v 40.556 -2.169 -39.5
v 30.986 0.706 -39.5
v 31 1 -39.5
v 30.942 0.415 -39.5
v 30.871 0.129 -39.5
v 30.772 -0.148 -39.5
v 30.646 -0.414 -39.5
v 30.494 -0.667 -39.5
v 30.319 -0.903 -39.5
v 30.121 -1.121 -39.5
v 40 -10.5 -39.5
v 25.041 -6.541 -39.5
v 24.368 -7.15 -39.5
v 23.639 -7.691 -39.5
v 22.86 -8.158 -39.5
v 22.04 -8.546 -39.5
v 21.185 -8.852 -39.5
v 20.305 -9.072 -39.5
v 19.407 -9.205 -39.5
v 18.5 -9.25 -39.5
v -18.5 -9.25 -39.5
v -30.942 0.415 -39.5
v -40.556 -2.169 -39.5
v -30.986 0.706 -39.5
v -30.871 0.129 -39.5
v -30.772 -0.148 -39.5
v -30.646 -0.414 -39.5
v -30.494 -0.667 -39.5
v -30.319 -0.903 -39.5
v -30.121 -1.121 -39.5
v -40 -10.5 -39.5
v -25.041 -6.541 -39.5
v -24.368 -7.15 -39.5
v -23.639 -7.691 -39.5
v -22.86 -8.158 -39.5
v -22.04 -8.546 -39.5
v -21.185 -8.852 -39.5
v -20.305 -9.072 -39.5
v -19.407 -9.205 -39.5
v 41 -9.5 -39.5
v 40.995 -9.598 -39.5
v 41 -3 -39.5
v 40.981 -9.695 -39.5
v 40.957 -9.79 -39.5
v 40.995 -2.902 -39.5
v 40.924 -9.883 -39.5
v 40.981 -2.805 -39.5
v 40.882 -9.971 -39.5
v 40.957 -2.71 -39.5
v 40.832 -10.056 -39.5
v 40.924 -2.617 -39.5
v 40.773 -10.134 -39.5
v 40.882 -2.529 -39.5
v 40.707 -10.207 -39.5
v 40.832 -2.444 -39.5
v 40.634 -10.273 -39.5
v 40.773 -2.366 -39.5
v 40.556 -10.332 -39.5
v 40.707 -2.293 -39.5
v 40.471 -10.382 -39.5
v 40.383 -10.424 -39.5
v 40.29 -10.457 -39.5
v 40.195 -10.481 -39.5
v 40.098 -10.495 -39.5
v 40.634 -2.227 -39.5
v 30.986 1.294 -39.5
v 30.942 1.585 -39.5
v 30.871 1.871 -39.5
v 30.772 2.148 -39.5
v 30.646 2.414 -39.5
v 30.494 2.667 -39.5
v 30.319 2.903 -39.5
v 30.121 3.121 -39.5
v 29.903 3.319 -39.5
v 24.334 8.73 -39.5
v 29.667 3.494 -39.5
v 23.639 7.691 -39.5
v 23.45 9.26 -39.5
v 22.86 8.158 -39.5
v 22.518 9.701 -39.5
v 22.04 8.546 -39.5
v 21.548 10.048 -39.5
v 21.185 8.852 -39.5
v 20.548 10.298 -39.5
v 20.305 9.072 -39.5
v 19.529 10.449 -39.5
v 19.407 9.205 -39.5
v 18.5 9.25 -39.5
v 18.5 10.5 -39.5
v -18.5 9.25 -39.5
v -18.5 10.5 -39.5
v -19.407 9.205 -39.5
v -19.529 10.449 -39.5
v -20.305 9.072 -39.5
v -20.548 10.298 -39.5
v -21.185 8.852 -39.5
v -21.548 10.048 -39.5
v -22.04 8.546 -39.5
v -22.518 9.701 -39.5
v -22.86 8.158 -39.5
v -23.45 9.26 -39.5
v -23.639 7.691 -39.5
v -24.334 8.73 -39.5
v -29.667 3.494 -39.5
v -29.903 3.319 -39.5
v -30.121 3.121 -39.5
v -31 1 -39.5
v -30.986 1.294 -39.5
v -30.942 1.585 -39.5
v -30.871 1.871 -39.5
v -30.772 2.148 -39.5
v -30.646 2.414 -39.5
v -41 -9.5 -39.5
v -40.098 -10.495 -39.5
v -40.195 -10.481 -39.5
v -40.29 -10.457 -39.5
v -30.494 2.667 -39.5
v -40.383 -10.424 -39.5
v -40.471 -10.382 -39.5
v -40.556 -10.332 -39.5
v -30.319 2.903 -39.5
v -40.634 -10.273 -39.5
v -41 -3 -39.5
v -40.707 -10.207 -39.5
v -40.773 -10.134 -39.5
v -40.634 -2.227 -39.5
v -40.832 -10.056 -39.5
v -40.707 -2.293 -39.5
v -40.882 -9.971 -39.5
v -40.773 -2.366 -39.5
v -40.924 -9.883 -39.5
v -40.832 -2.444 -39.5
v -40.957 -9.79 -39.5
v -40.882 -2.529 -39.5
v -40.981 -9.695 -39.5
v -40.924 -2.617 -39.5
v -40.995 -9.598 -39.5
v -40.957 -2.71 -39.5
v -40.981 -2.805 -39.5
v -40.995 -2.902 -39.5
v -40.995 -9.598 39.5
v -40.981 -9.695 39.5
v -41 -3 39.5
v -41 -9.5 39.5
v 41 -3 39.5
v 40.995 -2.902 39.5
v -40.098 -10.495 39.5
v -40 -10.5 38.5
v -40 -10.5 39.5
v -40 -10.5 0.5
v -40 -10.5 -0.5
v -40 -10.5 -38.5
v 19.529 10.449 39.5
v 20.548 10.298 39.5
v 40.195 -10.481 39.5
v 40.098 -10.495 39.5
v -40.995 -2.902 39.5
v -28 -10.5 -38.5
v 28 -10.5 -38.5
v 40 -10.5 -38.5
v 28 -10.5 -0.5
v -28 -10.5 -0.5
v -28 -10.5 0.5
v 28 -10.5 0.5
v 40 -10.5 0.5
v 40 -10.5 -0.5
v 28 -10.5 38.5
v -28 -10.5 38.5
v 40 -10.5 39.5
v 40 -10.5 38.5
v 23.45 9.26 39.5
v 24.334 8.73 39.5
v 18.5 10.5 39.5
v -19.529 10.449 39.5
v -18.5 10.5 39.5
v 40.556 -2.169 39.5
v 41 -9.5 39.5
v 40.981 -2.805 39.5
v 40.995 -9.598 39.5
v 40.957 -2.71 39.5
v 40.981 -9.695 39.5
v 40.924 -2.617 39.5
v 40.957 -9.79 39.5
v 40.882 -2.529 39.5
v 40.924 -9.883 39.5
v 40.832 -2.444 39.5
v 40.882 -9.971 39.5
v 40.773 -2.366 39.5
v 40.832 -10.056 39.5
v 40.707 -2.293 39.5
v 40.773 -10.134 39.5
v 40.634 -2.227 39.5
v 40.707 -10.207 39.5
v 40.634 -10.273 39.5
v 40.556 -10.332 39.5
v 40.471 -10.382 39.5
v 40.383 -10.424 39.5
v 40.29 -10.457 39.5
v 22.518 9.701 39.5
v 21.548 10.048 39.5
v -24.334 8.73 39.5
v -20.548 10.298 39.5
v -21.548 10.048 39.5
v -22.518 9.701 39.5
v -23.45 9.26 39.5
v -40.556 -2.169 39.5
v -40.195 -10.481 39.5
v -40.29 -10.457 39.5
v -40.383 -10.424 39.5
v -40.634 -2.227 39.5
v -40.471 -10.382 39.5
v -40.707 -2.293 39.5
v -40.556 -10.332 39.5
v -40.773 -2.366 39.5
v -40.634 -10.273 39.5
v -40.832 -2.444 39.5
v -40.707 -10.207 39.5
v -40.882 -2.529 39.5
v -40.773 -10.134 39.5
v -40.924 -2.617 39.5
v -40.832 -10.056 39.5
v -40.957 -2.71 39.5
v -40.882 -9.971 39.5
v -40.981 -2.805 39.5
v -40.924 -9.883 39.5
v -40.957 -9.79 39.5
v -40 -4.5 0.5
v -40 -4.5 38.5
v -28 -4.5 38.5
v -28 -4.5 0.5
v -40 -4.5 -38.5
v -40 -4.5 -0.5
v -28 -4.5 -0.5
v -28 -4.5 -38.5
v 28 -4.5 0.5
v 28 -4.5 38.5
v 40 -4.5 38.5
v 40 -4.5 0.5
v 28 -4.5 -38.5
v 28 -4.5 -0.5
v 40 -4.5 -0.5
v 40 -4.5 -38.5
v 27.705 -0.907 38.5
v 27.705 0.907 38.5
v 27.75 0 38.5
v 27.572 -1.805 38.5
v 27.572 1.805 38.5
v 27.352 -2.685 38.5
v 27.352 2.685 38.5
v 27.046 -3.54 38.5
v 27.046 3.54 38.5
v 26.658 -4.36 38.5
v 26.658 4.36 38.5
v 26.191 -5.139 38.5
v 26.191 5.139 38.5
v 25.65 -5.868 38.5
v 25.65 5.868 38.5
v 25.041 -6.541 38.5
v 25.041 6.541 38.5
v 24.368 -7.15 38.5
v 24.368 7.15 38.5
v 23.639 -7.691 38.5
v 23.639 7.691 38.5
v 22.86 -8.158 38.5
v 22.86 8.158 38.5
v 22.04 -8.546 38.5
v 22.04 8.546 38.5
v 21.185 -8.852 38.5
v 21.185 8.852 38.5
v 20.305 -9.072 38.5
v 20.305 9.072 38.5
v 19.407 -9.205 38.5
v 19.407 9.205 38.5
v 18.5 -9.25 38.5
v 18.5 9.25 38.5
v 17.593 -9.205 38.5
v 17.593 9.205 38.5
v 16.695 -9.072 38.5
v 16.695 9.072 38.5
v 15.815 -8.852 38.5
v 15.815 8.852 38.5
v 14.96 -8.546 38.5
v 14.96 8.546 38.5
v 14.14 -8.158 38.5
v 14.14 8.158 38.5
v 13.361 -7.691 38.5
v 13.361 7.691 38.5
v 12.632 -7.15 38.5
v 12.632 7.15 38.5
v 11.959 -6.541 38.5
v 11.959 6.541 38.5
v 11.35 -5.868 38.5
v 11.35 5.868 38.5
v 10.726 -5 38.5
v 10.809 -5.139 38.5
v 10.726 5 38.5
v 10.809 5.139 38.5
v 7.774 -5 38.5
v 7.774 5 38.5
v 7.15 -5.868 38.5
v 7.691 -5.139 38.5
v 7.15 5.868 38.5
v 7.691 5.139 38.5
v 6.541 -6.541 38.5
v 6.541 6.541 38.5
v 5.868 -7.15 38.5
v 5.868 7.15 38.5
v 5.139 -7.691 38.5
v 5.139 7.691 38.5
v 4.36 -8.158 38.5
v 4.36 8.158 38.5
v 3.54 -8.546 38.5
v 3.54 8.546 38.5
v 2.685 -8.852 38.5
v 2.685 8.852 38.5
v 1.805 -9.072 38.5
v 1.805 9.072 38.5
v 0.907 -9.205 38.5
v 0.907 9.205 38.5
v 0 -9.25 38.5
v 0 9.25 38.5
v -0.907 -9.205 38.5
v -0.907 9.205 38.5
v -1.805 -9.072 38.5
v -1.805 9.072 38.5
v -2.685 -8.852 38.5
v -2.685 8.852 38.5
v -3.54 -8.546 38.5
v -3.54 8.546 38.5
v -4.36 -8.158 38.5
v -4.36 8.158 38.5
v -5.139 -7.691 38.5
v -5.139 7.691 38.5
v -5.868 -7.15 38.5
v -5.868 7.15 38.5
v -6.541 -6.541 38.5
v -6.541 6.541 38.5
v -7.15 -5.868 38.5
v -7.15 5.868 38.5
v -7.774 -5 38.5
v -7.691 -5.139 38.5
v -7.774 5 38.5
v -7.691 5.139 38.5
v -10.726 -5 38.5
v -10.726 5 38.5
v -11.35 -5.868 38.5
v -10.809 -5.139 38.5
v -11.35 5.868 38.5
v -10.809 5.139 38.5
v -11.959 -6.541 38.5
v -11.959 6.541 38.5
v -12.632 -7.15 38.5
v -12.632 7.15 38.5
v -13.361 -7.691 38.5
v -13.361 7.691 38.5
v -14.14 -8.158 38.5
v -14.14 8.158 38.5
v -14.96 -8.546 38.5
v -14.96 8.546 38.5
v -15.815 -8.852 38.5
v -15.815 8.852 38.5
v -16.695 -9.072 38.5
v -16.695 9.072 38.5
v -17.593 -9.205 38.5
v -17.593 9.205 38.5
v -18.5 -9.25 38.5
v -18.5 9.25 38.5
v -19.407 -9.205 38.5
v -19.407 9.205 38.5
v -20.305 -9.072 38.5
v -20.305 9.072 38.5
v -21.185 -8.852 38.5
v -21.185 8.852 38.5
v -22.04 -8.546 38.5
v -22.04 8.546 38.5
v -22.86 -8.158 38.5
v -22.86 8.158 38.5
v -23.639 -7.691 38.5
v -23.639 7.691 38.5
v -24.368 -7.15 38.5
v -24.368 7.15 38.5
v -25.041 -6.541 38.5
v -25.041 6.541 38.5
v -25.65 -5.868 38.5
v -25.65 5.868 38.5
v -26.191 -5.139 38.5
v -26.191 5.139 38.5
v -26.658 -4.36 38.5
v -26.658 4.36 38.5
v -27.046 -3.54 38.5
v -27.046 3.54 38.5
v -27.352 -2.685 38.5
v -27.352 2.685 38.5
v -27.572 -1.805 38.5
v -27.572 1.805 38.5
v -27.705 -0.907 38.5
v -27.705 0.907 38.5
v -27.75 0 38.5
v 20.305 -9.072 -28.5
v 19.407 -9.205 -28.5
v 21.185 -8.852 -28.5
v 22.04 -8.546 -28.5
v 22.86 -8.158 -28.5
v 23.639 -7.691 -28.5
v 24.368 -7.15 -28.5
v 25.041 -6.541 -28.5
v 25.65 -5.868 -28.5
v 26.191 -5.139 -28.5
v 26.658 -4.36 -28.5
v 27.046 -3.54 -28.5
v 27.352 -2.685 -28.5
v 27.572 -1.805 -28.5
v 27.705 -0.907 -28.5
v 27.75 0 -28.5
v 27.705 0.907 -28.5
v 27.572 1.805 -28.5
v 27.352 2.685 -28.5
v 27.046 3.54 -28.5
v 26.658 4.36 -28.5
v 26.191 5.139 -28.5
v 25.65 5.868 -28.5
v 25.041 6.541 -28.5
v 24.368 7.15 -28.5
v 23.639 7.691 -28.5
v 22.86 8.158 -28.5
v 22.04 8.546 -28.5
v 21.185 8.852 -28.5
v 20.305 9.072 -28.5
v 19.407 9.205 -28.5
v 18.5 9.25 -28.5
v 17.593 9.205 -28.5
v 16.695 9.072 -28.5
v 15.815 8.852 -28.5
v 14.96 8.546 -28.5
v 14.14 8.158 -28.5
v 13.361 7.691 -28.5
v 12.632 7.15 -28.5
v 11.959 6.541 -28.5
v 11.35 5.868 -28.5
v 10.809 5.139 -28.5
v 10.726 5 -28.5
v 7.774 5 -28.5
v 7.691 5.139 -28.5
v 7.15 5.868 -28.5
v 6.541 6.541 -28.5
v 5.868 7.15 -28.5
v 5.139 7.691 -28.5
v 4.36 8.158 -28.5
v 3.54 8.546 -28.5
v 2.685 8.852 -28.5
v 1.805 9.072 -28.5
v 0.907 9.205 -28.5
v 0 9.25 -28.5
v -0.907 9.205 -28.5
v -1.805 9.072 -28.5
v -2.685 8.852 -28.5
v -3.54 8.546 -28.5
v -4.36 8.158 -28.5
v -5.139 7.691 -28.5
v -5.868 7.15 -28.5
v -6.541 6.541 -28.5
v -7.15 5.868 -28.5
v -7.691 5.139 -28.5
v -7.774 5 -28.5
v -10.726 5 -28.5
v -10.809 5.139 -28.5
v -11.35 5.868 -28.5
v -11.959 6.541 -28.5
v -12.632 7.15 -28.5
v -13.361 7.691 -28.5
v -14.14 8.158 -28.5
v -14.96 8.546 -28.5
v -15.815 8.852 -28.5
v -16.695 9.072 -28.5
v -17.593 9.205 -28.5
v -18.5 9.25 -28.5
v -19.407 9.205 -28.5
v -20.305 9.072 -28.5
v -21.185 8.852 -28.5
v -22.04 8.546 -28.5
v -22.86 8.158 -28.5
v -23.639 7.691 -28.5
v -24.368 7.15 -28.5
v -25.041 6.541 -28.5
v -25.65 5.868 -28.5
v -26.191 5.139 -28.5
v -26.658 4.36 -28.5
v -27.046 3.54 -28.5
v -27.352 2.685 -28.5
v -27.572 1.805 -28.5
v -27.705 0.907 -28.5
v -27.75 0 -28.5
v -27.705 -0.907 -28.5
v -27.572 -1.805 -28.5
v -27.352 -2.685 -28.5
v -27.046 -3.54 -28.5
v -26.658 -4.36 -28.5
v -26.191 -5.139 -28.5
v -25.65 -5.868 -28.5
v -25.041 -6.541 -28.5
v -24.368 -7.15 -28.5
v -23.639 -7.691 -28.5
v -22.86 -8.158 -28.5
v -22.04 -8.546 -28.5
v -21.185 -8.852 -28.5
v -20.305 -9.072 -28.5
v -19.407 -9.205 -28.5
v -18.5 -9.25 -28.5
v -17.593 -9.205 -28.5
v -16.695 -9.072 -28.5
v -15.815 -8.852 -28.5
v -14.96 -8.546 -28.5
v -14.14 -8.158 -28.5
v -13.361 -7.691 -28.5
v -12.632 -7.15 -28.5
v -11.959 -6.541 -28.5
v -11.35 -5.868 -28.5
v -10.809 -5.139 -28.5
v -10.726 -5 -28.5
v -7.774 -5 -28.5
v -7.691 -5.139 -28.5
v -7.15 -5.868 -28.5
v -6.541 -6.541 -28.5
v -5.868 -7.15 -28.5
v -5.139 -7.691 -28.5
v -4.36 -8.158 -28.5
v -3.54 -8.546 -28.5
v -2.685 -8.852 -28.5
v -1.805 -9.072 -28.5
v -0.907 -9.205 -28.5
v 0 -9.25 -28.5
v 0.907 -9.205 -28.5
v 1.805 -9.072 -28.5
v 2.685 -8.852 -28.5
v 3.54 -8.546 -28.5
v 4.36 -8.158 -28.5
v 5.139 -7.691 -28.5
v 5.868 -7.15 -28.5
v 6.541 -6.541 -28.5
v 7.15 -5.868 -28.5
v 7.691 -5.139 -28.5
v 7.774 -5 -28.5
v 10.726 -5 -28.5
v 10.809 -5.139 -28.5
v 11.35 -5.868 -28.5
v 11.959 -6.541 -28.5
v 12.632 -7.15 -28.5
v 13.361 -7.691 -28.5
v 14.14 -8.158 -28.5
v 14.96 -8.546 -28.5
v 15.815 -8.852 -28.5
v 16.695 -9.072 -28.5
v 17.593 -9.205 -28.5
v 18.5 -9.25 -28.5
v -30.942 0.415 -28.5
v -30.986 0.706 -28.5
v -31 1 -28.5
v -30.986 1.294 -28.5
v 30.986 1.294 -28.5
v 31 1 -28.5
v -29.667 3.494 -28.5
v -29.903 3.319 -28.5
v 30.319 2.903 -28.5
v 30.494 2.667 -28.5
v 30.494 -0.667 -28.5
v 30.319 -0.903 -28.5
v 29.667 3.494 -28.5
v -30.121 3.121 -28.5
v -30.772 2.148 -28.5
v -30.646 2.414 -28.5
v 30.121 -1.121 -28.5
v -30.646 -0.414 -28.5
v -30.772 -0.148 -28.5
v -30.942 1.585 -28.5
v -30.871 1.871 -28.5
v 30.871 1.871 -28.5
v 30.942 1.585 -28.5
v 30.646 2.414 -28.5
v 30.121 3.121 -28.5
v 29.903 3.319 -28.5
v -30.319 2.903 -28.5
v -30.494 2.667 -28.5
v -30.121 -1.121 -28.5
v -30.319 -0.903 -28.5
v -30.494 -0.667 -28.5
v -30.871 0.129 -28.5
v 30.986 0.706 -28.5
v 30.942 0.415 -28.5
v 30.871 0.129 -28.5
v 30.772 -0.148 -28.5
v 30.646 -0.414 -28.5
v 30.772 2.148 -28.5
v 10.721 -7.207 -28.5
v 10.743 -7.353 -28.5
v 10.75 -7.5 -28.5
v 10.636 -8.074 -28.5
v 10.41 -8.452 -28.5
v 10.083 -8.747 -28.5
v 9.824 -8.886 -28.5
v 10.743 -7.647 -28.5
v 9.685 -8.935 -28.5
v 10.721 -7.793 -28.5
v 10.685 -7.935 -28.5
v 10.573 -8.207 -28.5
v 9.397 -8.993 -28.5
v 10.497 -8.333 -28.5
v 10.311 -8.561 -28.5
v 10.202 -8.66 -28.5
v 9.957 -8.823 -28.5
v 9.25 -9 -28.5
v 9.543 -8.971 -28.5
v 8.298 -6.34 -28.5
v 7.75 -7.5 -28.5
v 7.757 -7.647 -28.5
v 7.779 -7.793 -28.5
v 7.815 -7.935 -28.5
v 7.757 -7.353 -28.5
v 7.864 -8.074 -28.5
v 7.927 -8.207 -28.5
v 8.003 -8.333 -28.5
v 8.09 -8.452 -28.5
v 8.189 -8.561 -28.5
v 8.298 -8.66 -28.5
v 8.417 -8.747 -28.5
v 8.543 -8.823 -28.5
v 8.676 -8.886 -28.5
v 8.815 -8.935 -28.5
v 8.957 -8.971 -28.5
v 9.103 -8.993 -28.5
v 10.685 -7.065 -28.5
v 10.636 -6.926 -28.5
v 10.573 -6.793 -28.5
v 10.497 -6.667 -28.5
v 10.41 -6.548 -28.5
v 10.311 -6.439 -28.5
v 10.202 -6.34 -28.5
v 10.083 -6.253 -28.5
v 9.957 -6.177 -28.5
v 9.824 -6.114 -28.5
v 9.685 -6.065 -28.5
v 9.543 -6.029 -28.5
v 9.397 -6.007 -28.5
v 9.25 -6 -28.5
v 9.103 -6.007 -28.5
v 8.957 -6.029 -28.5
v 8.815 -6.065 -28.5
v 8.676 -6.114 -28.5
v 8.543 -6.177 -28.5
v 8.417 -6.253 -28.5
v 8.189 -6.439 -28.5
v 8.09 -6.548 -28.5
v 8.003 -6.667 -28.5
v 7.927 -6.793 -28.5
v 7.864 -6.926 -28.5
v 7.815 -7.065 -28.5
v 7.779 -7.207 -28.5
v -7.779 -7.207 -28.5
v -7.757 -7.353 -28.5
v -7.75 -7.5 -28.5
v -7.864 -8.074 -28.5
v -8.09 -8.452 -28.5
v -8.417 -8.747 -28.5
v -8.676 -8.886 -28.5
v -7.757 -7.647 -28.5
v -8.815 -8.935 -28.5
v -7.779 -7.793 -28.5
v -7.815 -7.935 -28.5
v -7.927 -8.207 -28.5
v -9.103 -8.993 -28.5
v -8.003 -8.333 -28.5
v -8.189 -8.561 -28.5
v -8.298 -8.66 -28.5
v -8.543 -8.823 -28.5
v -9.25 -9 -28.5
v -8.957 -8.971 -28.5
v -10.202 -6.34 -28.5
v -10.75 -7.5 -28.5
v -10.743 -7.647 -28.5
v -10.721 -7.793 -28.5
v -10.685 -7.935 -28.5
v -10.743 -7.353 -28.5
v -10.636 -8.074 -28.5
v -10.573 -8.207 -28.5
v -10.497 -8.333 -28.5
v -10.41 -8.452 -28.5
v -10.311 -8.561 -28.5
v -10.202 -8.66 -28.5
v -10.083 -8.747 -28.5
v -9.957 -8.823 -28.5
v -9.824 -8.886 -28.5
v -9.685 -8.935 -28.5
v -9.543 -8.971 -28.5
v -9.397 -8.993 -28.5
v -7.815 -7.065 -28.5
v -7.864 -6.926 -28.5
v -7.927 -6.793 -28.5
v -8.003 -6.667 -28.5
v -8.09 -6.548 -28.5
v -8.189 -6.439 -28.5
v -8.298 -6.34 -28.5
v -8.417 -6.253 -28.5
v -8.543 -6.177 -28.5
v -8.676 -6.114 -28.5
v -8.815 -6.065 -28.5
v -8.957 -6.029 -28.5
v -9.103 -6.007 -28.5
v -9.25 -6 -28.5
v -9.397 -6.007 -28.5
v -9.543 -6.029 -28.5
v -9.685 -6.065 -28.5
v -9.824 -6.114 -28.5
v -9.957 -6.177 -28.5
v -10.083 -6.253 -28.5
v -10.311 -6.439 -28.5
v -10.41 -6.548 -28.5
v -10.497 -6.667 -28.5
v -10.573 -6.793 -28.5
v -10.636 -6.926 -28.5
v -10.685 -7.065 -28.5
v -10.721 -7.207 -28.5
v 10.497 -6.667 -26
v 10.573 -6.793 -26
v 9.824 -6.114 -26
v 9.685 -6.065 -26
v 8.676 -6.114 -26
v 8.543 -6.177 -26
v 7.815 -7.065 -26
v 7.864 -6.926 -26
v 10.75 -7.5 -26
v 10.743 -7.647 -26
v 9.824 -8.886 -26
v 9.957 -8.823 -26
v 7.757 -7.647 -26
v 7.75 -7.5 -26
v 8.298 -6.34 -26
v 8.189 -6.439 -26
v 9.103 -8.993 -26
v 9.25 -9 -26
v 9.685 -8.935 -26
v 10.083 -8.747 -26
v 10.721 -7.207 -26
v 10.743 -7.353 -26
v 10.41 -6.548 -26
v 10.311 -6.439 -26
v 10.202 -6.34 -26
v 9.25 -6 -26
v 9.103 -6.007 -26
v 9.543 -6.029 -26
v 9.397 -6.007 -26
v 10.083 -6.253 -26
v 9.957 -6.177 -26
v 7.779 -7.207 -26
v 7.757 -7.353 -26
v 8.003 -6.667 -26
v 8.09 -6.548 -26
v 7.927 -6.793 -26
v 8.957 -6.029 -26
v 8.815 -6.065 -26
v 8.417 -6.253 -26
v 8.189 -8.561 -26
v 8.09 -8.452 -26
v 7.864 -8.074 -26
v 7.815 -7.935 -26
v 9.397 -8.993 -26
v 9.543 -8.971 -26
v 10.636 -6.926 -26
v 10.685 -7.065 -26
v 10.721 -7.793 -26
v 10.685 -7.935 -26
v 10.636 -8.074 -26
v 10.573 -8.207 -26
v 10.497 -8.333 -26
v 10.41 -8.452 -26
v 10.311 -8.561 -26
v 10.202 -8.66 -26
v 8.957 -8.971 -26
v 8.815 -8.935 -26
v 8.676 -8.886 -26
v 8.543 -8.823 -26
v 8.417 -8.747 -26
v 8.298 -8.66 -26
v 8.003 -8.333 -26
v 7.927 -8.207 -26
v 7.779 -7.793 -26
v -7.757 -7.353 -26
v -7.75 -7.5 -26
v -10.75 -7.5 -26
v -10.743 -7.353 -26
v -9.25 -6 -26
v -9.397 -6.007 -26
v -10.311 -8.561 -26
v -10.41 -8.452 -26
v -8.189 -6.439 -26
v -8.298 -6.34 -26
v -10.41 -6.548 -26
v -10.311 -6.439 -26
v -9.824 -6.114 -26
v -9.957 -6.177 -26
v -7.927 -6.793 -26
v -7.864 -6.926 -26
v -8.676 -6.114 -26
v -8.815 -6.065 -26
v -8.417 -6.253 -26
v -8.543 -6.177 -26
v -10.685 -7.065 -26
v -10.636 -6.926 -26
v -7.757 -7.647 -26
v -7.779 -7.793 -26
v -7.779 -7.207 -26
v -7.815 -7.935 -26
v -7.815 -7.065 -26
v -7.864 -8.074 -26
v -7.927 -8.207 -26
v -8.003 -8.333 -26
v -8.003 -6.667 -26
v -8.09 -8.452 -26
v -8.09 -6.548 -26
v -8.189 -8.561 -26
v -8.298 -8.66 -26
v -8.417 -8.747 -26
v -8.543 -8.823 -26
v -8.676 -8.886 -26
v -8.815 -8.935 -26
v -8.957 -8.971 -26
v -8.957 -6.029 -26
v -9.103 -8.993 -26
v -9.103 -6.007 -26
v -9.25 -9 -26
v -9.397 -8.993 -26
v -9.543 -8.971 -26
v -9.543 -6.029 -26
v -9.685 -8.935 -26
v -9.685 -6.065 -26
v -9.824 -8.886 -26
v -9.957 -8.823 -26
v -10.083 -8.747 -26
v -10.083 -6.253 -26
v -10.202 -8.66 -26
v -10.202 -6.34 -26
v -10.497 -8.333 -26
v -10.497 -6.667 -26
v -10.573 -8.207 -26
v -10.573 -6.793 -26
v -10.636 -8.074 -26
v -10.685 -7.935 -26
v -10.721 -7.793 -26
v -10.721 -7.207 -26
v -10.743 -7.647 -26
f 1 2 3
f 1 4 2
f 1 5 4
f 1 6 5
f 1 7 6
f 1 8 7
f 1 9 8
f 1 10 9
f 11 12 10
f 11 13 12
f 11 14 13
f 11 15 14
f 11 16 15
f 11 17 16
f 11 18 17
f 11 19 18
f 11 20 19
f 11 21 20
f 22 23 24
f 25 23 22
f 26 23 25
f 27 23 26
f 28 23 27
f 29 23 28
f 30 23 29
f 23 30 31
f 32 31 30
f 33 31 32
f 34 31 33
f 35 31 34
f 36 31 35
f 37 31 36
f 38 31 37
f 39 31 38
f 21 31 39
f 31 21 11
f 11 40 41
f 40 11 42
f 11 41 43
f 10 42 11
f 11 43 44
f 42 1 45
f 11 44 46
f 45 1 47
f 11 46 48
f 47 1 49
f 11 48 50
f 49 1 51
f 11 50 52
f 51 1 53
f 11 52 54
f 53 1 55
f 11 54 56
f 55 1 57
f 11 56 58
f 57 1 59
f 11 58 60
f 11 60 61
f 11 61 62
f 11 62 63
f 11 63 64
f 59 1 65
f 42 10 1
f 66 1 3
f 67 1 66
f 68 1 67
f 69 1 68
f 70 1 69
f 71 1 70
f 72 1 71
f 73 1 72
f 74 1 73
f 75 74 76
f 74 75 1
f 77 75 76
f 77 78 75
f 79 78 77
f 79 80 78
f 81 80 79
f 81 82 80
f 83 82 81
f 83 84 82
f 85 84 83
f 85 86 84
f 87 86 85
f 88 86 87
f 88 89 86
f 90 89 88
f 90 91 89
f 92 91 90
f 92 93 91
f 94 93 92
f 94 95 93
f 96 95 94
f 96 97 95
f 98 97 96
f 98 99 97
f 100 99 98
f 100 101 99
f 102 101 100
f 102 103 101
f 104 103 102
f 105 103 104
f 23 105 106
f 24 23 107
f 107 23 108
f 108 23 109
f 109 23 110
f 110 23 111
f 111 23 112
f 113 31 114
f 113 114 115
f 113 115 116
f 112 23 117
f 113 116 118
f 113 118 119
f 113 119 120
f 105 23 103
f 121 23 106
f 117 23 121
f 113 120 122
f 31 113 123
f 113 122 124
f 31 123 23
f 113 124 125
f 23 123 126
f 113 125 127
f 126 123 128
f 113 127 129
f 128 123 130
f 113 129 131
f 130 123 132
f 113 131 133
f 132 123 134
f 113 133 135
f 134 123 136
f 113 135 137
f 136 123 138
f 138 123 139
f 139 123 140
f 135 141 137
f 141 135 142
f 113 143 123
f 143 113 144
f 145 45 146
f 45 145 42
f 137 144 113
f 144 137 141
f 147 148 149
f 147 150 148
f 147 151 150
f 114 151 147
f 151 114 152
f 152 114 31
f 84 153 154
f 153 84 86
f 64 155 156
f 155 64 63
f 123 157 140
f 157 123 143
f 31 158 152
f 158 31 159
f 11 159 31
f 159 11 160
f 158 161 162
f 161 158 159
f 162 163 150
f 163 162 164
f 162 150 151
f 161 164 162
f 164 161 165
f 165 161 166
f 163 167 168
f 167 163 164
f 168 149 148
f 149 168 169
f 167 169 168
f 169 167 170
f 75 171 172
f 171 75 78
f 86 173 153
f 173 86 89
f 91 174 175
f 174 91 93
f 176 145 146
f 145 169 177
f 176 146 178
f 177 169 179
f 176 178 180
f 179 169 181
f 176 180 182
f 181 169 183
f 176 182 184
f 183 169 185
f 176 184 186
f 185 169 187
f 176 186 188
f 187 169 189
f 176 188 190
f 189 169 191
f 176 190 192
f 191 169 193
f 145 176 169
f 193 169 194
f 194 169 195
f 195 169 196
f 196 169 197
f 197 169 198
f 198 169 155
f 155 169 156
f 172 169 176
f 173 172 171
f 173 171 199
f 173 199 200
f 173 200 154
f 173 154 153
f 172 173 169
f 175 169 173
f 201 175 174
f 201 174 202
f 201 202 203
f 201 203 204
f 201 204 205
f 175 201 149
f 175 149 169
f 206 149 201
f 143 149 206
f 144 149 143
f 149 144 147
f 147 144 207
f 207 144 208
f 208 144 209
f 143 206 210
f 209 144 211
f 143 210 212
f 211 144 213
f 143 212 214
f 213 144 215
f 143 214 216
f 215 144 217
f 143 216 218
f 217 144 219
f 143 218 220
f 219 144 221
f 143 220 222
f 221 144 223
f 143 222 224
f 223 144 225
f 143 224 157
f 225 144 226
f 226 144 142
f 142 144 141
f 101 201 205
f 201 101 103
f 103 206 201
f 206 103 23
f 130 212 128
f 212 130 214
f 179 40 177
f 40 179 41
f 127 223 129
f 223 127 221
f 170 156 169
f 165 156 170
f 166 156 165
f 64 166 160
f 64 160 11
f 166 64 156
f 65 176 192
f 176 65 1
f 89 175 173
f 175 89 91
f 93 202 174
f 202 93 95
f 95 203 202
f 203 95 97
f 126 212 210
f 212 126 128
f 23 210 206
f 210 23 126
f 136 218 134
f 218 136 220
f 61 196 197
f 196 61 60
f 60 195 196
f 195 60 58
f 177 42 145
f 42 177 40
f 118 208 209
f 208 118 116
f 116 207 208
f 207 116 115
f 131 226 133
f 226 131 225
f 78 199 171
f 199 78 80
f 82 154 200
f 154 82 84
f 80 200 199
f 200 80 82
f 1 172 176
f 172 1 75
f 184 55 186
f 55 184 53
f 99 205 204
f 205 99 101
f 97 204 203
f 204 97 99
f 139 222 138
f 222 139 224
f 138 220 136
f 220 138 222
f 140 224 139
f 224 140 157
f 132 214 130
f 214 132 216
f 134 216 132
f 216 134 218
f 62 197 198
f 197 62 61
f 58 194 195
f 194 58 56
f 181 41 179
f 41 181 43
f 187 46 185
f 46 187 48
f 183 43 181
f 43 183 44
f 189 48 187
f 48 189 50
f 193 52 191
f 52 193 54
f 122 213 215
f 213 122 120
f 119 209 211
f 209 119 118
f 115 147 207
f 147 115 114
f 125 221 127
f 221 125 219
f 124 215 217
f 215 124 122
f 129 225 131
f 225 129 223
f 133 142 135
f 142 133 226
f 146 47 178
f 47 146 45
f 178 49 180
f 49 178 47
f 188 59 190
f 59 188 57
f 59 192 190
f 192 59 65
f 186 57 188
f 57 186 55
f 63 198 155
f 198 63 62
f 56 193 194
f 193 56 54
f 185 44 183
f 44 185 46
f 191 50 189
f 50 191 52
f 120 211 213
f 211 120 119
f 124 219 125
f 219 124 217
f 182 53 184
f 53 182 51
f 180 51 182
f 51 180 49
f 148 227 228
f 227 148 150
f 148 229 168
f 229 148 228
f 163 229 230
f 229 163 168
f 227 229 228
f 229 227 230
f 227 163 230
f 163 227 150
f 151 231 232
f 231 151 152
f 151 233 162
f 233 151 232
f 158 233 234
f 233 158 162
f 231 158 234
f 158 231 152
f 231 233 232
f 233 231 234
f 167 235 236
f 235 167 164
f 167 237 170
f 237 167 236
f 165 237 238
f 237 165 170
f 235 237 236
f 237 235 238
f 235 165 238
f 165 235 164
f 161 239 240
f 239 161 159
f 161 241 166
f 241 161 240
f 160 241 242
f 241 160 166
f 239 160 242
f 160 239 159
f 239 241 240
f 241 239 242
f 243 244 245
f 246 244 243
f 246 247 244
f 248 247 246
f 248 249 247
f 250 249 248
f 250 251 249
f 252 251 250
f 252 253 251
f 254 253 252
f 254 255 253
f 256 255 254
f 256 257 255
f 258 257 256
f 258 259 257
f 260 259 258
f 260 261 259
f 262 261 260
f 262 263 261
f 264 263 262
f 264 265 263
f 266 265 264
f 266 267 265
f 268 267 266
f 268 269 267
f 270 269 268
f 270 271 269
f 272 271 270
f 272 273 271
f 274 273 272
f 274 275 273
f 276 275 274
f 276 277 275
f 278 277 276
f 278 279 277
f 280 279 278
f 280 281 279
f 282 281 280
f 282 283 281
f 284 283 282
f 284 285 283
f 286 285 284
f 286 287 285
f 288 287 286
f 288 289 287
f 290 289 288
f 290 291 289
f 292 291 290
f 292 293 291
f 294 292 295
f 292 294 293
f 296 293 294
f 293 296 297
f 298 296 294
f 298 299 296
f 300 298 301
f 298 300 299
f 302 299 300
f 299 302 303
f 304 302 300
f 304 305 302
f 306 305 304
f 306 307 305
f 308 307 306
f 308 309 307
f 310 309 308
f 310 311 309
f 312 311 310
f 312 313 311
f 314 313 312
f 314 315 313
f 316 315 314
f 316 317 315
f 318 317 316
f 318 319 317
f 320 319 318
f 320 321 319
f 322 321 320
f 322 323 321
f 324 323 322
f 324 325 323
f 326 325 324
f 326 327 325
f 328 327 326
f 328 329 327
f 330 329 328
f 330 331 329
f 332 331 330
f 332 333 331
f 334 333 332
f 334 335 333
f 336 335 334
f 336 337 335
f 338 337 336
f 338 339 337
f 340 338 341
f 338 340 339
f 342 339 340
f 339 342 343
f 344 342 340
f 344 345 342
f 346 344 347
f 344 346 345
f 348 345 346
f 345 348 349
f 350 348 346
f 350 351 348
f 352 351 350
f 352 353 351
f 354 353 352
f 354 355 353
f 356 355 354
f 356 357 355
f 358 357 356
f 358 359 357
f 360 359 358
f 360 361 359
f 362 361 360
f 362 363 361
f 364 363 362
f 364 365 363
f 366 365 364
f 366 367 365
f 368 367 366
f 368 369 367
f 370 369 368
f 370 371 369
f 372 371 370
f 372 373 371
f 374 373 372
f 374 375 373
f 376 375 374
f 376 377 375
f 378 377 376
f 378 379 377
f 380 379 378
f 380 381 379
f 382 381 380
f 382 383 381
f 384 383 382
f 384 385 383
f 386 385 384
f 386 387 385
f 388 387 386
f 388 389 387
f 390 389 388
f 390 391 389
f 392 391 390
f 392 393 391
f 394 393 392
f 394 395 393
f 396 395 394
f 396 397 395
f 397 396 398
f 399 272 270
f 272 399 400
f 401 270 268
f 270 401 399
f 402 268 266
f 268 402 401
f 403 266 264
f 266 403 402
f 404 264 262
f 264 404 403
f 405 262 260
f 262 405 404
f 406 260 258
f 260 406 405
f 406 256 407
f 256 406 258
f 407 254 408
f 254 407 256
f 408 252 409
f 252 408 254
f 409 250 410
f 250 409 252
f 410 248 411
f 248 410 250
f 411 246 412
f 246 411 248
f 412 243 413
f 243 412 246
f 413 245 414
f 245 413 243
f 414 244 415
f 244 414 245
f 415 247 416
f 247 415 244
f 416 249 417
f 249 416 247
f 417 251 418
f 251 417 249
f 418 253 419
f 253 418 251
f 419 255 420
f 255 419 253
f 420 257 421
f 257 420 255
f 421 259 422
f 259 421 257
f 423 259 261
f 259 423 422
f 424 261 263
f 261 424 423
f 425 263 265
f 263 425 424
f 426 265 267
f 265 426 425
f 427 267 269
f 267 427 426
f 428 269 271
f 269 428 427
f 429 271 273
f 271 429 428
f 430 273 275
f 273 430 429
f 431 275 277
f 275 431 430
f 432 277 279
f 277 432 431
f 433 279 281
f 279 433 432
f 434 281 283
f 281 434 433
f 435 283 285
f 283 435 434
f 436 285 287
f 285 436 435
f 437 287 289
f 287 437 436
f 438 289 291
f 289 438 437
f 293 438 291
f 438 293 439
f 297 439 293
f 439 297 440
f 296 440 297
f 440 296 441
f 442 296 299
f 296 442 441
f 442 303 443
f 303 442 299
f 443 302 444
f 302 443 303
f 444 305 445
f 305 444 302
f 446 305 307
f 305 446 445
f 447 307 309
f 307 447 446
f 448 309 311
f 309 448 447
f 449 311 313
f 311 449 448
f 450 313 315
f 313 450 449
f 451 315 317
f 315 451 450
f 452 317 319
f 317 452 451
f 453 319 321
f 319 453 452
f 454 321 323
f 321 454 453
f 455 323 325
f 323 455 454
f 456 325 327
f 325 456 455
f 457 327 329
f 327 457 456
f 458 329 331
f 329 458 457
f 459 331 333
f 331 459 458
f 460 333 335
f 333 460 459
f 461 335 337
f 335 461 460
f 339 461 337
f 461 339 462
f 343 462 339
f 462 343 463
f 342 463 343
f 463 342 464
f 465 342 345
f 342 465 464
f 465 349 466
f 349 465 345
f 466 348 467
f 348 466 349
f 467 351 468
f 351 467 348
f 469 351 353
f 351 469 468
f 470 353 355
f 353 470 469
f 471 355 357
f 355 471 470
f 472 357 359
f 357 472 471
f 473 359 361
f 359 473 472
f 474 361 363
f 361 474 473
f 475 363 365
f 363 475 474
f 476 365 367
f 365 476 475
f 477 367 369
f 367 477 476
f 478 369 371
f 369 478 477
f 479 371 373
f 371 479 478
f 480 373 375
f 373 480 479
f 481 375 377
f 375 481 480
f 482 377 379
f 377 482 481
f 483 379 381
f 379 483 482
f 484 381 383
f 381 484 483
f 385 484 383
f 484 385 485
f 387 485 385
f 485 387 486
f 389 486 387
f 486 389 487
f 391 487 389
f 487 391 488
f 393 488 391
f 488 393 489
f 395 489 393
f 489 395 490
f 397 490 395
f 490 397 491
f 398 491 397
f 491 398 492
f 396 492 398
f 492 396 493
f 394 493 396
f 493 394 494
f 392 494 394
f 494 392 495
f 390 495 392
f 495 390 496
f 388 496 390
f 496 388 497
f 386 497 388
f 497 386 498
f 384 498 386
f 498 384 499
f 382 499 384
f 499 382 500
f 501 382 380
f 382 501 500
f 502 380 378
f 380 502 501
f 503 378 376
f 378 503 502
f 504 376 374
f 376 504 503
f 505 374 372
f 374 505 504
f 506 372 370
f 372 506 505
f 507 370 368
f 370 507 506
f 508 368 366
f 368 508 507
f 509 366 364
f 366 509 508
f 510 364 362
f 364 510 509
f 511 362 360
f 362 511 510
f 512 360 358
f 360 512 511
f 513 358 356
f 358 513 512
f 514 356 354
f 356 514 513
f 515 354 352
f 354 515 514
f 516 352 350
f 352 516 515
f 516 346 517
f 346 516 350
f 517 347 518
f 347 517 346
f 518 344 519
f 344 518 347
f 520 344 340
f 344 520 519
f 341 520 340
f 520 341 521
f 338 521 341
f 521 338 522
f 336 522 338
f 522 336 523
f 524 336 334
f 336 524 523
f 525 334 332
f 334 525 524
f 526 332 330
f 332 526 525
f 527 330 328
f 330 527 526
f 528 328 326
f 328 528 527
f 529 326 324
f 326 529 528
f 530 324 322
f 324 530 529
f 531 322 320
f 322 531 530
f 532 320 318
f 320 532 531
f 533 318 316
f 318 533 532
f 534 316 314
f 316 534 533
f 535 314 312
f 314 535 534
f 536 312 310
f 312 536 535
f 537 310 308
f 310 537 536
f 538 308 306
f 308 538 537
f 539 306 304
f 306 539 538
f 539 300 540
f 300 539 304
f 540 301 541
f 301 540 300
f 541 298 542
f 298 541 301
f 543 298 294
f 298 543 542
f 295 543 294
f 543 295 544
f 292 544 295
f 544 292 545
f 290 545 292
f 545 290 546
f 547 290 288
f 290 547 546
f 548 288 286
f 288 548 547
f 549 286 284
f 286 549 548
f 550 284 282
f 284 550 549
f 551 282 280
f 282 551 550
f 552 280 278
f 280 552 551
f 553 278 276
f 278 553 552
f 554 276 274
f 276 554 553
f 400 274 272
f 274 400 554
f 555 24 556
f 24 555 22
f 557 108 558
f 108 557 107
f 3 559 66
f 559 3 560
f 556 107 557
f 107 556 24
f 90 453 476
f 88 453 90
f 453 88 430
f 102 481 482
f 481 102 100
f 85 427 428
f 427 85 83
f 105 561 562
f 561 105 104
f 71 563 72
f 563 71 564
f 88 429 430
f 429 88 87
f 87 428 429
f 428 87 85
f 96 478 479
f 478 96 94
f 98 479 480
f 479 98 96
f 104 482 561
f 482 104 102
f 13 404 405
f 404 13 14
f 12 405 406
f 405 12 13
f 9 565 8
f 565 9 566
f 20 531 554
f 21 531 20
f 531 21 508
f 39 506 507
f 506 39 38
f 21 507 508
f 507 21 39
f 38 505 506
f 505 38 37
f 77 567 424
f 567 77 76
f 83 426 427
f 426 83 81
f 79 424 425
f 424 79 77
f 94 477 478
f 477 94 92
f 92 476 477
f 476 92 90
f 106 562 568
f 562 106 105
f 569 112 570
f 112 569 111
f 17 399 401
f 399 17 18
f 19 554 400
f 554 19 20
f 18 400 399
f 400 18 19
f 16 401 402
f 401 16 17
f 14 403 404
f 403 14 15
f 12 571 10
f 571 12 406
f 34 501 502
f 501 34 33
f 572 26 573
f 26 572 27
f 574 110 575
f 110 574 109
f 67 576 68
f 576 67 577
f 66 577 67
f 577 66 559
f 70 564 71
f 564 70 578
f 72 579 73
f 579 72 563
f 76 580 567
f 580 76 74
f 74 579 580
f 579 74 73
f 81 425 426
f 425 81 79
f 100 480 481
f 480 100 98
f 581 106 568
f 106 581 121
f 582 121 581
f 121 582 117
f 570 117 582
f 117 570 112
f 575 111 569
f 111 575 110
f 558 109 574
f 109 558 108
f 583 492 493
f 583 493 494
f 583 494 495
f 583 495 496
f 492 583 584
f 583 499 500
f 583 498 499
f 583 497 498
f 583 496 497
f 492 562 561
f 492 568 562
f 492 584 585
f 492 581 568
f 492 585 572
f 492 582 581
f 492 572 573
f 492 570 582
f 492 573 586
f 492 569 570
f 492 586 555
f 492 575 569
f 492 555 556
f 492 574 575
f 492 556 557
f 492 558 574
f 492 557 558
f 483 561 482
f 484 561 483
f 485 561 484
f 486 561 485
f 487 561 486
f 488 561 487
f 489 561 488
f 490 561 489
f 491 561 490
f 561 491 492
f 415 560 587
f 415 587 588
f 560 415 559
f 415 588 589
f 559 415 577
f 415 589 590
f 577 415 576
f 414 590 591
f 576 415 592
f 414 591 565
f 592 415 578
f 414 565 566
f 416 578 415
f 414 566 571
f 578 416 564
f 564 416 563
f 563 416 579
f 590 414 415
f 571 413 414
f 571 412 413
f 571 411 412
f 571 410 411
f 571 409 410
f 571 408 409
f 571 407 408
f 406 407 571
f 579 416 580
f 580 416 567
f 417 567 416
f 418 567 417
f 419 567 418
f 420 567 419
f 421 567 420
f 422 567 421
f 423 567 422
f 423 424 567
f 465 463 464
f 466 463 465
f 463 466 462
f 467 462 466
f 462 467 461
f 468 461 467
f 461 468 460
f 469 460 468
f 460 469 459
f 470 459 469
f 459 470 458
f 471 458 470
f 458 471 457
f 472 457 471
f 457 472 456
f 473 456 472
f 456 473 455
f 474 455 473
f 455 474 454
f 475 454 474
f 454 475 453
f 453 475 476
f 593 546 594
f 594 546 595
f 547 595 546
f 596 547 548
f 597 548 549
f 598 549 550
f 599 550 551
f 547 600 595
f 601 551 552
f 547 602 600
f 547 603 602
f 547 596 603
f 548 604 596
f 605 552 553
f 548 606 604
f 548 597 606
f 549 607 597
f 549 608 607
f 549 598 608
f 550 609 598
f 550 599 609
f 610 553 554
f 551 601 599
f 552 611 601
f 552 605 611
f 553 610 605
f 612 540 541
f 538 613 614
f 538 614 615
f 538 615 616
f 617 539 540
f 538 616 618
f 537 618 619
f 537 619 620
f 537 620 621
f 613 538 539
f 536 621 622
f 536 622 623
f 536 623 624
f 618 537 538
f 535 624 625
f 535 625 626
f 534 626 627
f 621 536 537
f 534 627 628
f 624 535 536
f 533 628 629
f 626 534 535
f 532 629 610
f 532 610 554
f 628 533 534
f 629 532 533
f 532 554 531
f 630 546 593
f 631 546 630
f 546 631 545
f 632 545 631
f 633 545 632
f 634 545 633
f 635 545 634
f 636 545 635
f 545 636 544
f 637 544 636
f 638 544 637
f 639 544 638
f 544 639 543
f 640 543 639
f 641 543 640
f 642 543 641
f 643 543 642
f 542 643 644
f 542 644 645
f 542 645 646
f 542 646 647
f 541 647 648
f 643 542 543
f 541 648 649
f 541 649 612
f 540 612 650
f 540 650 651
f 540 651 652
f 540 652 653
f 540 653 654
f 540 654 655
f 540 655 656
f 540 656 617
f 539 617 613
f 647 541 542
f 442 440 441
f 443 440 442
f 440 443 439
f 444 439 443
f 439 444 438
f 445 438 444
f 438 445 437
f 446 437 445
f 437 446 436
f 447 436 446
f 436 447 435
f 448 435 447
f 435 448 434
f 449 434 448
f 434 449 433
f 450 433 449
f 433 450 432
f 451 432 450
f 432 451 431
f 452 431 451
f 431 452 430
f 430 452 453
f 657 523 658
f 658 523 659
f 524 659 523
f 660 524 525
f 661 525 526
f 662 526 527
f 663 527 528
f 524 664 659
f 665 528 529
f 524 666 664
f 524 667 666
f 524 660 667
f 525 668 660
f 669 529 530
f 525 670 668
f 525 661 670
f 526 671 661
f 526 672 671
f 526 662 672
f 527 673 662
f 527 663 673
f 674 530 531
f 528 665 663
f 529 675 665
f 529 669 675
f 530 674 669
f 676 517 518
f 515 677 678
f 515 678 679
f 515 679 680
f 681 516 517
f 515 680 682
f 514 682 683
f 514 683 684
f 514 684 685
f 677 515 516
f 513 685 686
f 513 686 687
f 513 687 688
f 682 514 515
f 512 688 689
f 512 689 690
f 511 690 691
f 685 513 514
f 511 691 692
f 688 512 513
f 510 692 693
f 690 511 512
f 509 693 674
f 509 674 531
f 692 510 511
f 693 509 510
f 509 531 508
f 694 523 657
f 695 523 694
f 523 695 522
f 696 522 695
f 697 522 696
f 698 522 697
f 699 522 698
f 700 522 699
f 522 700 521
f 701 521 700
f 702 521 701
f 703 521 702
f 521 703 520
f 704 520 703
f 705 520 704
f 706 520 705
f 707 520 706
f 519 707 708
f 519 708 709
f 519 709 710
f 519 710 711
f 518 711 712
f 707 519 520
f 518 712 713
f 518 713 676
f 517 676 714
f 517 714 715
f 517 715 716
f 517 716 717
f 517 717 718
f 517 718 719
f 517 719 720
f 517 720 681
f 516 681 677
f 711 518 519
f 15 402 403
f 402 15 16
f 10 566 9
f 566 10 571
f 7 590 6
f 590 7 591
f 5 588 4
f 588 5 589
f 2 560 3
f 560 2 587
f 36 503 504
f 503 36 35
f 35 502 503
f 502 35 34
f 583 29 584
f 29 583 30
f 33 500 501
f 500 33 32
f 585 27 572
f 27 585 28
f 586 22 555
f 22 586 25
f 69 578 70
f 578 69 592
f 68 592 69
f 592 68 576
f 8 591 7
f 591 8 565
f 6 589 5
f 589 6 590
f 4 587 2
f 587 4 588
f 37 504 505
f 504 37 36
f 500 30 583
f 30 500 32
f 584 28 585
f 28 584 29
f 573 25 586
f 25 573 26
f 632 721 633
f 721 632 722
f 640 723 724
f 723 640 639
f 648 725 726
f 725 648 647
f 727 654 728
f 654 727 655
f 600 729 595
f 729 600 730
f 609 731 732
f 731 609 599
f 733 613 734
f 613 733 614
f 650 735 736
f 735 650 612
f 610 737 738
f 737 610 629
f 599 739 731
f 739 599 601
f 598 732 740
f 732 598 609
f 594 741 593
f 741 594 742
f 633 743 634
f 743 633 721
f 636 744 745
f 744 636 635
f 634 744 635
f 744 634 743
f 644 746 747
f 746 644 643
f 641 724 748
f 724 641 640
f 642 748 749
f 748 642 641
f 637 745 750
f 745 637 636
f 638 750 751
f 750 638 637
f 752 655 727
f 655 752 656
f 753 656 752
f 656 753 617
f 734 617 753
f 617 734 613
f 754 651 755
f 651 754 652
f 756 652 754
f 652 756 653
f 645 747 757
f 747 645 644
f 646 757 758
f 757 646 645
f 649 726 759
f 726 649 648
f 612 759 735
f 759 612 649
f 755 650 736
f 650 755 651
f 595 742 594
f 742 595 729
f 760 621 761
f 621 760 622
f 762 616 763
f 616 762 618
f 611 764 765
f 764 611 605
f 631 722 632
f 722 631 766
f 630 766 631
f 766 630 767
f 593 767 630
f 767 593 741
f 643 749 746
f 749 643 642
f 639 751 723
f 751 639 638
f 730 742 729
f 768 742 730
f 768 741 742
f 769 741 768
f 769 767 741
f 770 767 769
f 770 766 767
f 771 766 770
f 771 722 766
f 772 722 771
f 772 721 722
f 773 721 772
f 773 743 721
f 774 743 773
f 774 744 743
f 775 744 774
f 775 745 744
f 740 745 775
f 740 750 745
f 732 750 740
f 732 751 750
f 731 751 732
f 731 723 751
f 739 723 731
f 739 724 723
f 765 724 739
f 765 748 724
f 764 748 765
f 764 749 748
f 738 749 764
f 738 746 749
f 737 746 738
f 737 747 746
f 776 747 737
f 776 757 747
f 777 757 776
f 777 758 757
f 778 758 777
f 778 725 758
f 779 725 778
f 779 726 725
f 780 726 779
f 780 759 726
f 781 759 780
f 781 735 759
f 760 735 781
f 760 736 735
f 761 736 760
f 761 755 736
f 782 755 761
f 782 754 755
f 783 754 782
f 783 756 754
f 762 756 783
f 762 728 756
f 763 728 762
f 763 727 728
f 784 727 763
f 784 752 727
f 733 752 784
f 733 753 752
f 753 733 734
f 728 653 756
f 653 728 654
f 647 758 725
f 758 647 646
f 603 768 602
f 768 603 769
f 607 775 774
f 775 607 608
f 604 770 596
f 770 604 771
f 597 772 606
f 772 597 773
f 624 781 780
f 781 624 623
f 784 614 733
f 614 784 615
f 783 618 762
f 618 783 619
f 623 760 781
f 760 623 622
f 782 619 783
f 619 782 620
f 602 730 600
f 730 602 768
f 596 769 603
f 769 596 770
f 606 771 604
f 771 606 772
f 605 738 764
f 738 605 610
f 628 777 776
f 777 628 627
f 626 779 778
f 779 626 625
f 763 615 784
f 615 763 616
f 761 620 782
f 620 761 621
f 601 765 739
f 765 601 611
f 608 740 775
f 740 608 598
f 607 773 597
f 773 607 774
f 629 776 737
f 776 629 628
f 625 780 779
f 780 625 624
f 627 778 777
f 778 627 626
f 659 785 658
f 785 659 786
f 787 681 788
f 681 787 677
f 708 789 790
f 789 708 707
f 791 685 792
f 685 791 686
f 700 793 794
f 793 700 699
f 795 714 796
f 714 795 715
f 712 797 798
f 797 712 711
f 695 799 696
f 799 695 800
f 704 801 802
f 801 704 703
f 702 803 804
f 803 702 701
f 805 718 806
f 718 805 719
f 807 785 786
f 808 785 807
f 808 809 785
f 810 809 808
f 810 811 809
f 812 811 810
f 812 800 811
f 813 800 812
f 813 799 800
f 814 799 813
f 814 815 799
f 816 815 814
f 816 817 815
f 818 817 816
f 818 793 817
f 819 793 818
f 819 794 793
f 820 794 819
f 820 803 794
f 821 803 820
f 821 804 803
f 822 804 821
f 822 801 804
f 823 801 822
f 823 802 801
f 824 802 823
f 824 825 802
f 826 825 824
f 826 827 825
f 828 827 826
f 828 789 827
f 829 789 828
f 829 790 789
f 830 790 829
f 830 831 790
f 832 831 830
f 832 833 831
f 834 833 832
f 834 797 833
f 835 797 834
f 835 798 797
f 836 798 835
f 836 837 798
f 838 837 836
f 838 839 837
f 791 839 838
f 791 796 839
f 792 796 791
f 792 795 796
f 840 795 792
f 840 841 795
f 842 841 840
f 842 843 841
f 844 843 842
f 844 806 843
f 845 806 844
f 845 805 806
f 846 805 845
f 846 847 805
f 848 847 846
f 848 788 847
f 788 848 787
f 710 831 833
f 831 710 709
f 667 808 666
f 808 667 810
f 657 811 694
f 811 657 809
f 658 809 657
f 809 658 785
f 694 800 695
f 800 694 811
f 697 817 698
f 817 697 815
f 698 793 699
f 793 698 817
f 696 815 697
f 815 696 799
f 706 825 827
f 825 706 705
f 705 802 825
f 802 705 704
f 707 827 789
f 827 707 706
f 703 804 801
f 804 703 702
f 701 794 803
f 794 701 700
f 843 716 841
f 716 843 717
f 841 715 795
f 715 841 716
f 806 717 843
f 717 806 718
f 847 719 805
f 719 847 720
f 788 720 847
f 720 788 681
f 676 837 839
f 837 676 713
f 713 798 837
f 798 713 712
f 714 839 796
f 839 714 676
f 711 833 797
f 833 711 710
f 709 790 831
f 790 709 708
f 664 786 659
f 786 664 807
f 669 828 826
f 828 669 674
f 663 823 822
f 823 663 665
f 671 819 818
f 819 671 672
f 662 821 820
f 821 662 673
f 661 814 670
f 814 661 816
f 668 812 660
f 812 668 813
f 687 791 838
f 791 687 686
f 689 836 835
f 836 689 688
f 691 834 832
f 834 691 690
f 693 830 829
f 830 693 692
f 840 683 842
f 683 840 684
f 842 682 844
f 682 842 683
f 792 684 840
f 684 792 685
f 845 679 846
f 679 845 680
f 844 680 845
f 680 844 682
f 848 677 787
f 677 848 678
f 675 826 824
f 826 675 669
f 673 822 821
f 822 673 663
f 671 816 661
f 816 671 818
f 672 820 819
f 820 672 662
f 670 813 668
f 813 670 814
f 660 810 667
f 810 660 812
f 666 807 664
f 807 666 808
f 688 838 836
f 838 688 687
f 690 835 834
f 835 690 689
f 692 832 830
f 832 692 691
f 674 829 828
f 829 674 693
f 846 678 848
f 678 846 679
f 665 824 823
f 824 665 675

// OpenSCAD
// file: library.scad
// Аккумулятор 18650

module akk18650() {
  cylinder(d=18.4, h=65, center=true);
  
}
// main file
include <library.scad>

$fn = 64;

if(false) {

  translate([  0.0, 0, 5]) akk18650();
  translate([ 18.5, 0, 5]) akk18650();
  translate([-18.5, 0, 5]) akk18650();
  
  // Магниты
  /*translate([ 33, -5, 0]) cube([8,8,55], center=true);*/
  /*translate([-33, -5, 0]) cube([8,8,55], center=true);*/

  translate([-34, -7, 38/2+0.5]) cube([12,6,38], center=true);
  translate([-34, -7,-38/2-0.5]) cube([12,6,38], center=true);
  
  translate([ 34, -7, 38/2+0.5]) cube([12,6,38], center=true);
  translate([ 34, -7,-38/2-0.5]) cube([12,6,38], center=true);

  translate([-64, -7, 38/2+0.5]) cube([15,15,50], center=true);

}


// PCB

if(false) {
  translate([0,0,-65/2]) {
    color("Green") {
      linear_extrude(height=1.6, center=true) hull() {
        translate([-18.5, 0]) circle(r=9);
        translate([ 18.5, 0]) circle(r=9);  
      }
    }
    color("Black") {
      translate([0,-8,1.6/2]) cube([16,16,2.5]);
    }
    color("Gray") {
      translate([-9,-9,-1.6/2-2.5]) cube([18,18,2.5]);
    }
  }
}


// Корпус

color("red")

difference() {
  

  linear_extrude(height = 79.0, center=true) {

    hull() {

      translate([-40,-9.5]) circle(r=1);
      translate([ 40,-9.5]) circle(r=1);

      translate([-40,-3]) circle(r=1);
      translate([ 40,-3]) circle(r=1);

      translate([-18.5, 0]) circle(r=10.5);
      translate([ 18.5, 0]) circle(r=10.5);
    }
  }

  // Полости под магниты
  translate([-34, -8, 38/2+0.5]) cube([12, 7, 38], center=true);
  translate([-34, -8,-38/2-0.5]) cube([12, 7, 38], center=true);

  translate([ 34, -8, 38/2+0.5]) cube([12, 7, 38], center=true);
  translate([ 34, -8,-38/2-0.5]) cube([12, 7, 38], center=true);

  /*translate([-64, -7, 38/2+0.5]) cube([15, 15, 50], center=true);*/

  // Полости под аккумуляторы
  translate([0, 0, -1]) linear_extrude(height = 79.0, center=true) {
    translate([ 18.5, 0]) circle(d = 18.5);
    translate([    0, 0]) circle(d = 18.5);
    translate([-18.5, 0]) circle(d = 18.5);
    translate([0, 0]) square(size=[30, 10], center=true);
  }

  // Полость под плату

  translate([0,0,-65/2-3])
  linear_extrude(height=14, center=true) hull() {
    translate([-18.5, 0]) circle(d=18.5);
    translate([ 18.5, 0]) circle(d=18.5);
    translate([-28, 1]) circle(d=6);
    translate([ 28, 1]) circle(d=6);
    /*translate([0, -8]) square(size=[55.5, 10], center=true);*/
  }

  // зацепы для крыщки
  translate([ 18.5/2, -7.5, -29]) {
    cylinder(d=3, h=3);  
  }
  translate([-18.5/2, -7.5, -29]) {
    cylinder(d=3, h=3);  
  }

  /*translate([50,0,0]) cube([100,100,100], center=true);*/
}


// крепежные столбики

/*color("blue")
{
  translate([ 18.5/2, 10, -36.5]) rotate([90, 0, 0]) {
    difference() {
      cylinder(d1=6, d2=5, h=4);  
      translate([ 0, 0, 0.1]) cylinder(d=1.5, h=5);  
      
    }
  }

  translate([-18.5/2, 10, -36.5]) rotate([90, 0, 0]) {
    difference() {
      cylinder(d1=6, d2=5, h=4);  
      translate([ 0, 0, 0.1]) cylinder(d=1.5, h=5);  
      
    }
  }

}*/

/*color("lime") {
  translate([0,0,-65/2-13])
}*/
